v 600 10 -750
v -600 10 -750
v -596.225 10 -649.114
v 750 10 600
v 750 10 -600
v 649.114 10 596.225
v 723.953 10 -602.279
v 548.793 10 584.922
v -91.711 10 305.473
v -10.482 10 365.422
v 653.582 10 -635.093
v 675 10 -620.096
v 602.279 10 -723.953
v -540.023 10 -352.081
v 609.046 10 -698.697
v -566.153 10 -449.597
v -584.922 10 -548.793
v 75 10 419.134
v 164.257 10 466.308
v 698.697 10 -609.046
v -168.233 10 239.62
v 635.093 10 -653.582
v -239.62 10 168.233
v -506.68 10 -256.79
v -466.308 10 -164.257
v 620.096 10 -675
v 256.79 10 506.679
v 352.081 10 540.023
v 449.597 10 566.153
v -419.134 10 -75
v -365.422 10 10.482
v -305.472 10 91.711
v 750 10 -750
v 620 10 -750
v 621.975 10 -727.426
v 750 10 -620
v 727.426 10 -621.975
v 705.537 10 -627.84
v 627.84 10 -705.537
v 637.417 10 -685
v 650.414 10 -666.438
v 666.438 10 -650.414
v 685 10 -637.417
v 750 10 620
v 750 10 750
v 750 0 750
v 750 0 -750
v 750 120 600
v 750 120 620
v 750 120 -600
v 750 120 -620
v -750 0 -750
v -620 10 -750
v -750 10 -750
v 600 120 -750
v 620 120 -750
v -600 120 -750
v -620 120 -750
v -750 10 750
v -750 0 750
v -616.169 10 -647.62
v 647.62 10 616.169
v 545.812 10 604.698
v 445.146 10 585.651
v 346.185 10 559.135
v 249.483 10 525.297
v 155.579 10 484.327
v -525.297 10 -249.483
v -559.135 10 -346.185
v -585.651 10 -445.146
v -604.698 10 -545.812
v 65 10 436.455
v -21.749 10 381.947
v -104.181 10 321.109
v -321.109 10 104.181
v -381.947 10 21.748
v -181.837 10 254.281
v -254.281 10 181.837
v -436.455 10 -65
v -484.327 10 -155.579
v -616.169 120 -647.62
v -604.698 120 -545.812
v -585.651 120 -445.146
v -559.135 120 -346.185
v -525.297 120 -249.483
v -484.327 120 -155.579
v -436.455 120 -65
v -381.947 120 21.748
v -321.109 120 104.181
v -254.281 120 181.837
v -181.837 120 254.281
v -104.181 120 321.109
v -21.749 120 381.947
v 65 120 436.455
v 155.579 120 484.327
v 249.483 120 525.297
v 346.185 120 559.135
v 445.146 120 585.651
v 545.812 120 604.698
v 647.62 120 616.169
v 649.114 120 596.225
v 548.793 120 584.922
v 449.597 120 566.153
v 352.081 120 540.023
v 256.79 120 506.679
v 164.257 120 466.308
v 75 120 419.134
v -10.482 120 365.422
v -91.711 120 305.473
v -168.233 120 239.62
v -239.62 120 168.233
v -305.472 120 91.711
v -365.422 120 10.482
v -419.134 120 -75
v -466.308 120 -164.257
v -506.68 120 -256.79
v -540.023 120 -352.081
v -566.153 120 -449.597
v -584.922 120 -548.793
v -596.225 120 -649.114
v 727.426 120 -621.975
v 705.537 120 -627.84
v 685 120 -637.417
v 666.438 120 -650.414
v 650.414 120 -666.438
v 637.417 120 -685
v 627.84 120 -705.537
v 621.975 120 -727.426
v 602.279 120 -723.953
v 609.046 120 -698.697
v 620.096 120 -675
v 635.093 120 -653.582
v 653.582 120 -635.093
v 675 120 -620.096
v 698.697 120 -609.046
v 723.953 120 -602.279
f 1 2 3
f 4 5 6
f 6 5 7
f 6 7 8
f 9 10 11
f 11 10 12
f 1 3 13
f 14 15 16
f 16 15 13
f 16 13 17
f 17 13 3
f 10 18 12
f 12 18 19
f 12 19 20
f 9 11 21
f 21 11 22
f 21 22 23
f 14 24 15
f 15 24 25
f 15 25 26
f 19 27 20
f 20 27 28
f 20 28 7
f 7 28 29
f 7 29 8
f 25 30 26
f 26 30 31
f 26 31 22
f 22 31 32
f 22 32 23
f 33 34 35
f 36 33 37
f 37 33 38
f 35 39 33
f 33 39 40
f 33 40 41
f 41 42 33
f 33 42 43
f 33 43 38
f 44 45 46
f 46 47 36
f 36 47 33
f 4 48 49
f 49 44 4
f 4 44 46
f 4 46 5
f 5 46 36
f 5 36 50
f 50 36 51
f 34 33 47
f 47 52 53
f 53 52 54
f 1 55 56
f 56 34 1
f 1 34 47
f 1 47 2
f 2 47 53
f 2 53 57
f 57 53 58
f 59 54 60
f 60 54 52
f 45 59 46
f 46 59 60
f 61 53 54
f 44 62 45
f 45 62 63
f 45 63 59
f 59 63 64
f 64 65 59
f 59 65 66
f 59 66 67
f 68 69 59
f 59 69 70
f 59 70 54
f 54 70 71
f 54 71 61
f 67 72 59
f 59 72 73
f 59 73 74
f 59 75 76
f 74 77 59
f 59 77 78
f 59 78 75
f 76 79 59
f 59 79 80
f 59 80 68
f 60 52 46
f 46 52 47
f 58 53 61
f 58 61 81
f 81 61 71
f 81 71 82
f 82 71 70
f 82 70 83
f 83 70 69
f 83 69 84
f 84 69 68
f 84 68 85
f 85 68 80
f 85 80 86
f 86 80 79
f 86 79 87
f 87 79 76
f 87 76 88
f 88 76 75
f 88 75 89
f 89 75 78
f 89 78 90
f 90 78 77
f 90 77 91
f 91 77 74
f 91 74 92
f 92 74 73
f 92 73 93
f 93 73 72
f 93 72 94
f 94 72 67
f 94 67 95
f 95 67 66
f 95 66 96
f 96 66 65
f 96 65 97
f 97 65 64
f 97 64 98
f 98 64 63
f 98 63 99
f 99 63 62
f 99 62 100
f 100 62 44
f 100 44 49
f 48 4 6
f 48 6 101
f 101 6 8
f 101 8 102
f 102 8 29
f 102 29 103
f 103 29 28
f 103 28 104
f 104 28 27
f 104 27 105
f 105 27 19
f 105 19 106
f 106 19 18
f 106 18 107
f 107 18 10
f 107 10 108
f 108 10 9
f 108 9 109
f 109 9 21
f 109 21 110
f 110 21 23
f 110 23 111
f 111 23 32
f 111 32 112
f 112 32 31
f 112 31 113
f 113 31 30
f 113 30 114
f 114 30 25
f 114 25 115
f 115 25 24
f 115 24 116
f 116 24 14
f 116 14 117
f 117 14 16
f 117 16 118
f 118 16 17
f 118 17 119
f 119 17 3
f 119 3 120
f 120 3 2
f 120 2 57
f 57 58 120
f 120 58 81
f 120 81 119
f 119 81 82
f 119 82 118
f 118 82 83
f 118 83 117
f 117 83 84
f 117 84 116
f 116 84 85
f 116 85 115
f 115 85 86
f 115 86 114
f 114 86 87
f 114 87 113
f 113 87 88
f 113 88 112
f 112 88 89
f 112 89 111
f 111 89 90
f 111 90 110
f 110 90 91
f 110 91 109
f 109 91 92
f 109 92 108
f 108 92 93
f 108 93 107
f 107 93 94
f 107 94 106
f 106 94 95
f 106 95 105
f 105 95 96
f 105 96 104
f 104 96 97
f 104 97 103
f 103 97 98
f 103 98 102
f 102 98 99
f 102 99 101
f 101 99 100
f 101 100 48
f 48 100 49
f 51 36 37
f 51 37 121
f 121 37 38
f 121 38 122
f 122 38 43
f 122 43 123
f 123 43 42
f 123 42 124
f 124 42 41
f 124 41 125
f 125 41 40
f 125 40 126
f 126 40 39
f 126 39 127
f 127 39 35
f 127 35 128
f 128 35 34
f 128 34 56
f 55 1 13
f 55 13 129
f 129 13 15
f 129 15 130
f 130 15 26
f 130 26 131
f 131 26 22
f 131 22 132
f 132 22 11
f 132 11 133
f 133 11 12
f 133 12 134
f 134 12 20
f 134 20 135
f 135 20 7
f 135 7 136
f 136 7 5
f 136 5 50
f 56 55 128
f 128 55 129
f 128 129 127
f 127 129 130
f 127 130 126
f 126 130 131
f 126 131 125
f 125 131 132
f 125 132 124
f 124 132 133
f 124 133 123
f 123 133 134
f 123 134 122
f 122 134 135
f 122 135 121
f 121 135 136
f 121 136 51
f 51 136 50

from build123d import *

# Parameters (mm, degrees)
SKETCH2_W           = 1500
SKETCH2_H           = 1500
BOSS_EXTRUDE1_DEPTH = 10
BOSS_EXTRUDE2_DEPTH = 110


with BuildPart() as part:
    # Sketch2 → Boss-Extrude1 (new body)
    with BuildSketch(Plane(origin=(0, 0, 0), x_dir=(1, 0, 0), z_dir=(0, 1, 0))):
        Rectangle(SKETCH2_W, SKETCH2_H)
    extrude(amount=BOSS_EXTRUDE1_DEPTH)

    # Sketch3 → Boss-Extrude2 (add)
    with BuildSketch(Plane(origin=(0, 10, 0), x_dir=(1, 0, 0), z_dir=(0, 1, 0))):
        with BuildLine():
            ThreePointArc((750, -600), (-204.594154602, -204.594154602), (-600, 750))
            Line((-600, 750), (-620, 750))
            ThreePointArc((-620, 750), (-218.736290226, -218.736290226), (750, -620))
            Line((750, -620), (750, -600))
        make_face()
        with BuildLine():
            Line((620, 750), (600, 750))
            ThreePointArc((600, 750), (643.933982822, 643.933982822), (750, 600))
            Line((750, 600), (750, 620))
            ThreePointArc((750, 620), (658.076118446, 658.076118446), (620, 750))
        make_face()
    extrude(amount=BOSS_EXTRUDE2_DEPTH)


solid = part.part
